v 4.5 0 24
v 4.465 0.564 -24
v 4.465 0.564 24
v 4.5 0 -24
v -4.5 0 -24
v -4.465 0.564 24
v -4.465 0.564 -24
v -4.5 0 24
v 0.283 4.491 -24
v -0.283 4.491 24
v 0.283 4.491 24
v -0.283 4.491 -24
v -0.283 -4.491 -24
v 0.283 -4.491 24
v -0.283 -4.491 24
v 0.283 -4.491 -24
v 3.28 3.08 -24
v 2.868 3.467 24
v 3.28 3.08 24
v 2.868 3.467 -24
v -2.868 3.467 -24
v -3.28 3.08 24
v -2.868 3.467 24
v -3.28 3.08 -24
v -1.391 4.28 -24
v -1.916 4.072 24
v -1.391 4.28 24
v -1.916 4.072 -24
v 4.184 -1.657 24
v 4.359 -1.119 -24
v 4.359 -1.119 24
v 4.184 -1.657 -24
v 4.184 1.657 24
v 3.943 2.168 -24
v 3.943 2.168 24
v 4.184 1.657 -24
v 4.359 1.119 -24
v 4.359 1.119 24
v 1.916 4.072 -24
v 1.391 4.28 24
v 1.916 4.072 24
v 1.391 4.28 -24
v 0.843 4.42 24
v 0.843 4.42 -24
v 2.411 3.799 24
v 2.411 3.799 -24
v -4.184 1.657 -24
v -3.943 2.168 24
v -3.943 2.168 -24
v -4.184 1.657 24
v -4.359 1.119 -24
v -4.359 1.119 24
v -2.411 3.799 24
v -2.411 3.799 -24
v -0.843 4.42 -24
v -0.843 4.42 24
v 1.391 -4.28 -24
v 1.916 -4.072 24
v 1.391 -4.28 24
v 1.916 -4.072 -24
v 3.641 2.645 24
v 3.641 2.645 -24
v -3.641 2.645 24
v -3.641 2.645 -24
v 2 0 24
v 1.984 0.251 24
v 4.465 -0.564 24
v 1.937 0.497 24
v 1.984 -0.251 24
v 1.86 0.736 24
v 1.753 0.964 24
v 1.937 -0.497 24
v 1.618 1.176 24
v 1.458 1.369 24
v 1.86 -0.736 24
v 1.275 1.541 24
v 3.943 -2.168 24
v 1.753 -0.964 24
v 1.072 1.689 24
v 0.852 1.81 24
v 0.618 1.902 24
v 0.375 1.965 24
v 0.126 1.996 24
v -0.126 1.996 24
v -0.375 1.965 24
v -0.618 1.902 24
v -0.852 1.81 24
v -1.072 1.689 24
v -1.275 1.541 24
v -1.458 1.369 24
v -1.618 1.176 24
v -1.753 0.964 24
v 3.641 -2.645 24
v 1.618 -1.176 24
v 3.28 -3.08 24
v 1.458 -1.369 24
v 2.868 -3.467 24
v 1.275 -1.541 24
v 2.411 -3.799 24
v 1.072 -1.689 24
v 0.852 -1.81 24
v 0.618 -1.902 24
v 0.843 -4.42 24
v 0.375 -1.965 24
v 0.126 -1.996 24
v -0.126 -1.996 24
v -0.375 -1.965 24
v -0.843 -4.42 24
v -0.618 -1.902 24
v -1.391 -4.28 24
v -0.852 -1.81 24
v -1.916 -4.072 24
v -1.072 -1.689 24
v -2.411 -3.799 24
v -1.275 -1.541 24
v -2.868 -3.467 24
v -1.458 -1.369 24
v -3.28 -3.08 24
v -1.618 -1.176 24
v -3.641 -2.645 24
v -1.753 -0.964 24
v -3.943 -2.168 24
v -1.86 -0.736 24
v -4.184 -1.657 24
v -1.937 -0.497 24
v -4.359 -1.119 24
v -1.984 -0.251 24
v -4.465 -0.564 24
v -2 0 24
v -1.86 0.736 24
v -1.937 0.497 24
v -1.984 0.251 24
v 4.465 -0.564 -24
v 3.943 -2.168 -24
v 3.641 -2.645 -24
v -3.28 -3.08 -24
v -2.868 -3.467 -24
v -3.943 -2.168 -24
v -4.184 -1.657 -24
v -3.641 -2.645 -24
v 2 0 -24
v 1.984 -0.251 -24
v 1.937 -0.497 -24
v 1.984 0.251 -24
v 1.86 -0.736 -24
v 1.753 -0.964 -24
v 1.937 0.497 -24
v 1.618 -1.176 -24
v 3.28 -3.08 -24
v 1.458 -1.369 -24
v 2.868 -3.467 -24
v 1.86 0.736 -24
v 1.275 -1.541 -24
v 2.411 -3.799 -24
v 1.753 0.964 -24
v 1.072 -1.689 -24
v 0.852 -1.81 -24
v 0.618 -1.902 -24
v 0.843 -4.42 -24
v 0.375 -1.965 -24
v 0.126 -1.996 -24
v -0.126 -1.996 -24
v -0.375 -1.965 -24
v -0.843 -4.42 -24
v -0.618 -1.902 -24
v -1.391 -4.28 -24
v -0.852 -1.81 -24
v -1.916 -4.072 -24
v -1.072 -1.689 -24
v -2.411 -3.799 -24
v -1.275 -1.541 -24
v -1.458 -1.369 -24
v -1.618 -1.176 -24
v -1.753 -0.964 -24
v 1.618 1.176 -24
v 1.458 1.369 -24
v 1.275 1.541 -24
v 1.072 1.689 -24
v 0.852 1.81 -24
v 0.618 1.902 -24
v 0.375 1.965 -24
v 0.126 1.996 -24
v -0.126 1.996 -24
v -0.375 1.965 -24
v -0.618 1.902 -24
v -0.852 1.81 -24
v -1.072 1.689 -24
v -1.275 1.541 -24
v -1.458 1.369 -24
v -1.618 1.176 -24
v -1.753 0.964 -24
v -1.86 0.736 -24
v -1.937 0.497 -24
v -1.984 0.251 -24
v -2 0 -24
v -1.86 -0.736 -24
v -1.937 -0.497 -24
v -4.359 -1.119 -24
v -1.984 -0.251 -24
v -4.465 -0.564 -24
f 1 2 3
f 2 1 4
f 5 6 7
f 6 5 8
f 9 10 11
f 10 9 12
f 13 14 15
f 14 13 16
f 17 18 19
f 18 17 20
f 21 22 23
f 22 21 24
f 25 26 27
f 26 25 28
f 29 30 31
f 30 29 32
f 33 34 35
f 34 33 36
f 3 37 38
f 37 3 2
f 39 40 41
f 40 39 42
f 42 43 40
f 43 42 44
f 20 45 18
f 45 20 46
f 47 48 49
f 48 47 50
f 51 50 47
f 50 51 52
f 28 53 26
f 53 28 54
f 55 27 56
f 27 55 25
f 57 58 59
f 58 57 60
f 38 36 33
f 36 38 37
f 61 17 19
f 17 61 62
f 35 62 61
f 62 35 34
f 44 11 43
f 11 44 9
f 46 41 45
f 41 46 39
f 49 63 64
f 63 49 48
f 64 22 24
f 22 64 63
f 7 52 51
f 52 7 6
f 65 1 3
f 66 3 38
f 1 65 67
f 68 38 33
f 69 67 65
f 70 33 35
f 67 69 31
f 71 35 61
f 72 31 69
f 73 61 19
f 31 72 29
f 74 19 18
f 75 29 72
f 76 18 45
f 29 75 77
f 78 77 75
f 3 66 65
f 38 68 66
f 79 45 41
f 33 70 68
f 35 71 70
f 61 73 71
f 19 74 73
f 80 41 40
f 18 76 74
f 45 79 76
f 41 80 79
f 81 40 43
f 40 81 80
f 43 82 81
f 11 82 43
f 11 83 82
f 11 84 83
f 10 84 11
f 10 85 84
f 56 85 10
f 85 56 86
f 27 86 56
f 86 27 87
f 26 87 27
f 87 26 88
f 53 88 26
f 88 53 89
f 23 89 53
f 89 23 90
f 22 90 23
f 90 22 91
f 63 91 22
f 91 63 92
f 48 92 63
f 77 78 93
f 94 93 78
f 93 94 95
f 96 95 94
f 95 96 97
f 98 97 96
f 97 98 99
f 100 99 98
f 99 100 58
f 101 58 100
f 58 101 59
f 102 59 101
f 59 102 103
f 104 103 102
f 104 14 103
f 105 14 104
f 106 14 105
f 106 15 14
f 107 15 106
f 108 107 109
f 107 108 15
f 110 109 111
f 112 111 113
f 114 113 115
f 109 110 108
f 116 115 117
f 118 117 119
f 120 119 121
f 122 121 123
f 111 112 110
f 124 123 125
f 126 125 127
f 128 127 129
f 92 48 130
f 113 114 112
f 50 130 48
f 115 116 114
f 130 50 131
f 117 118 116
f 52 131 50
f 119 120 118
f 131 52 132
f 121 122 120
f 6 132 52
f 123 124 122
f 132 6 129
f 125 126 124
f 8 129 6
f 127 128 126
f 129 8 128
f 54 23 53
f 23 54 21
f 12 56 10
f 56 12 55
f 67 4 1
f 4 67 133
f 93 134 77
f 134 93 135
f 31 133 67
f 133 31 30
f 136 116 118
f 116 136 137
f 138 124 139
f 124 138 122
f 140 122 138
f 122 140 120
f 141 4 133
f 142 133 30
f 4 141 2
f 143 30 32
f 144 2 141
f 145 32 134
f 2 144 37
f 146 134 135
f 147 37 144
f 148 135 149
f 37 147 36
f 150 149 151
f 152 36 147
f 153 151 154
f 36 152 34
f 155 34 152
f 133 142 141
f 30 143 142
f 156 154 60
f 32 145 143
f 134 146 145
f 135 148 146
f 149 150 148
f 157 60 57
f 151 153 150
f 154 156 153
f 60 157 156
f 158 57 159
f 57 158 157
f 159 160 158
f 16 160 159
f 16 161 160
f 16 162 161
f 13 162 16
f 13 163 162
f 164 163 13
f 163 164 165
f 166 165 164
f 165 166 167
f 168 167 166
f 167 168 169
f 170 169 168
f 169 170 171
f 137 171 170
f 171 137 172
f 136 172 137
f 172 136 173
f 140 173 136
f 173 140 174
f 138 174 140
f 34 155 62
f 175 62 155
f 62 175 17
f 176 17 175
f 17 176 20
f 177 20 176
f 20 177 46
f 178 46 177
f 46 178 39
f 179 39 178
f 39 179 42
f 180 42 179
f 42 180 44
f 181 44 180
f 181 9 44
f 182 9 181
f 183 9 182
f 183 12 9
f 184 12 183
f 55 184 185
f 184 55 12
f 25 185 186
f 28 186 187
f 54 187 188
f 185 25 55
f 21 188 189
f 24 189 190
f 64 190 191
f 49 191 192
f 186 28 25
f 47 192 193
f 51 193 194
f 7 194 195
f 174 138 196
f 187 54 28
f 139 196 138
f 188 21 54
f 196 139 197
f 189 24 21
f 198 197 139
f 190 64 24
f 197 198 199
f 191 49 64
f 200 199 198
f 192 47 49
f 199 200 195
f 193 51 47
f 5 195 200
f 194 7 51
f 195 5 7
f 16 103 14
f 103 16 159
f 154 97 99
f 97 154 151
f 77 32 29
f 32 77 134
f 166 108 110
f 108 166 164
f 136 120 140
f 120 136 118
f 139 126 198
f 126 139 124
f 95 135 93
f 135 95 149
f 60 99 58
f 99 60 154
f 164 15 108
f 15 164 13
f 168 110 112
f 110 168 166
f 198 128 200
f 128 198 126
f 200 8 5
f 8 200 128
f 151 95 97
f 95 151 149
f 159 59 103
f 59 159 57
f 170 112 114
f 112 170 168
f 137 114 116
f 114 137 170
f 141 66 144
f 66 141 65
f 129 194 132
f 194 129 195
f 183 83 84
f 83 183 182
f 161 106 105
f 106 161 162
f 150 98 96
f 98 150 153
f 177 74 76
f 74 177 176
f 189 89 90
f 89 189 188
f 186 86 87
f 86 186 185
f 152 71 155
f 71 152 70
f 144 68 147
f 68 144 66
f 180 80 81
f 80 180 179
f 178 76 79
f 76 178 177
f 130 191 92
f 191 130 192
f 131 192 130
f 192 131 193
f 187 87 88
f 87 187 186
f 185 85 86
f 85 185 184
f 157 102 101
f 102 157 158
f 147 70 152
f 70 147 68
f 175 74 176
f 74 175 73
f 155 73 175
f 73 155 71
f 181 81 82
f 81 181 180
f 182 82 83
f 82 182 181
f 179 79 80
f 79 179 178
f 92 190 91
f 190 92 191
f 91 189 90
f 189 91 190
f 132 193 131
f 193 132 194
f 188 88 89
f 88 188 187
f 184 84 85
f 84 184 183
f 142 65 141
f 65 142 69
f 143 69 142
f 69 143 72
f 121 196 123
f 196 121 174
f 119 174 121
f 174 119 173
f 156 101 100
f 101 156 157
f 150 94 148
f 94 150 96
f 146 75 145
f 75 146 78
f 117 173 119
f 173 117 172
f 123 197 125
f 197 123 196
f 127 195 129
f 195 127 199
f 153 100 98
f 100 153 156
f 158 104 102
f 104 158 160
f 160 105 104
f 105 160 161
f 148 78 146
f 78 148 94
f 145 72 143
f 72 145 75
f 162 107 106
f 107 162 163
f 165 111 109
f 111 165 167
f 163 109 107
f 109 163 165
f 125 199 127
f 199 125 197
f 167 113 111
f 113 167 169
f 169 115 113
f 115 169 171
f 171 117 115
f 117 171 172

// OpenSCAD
$fn = 50;


difference() {
	union() {
		translate(v = [0, 0, -24.0000000000]) {
			cylinder(h = 48, r = 4.5000000000);
		}
	}
	union() {
		translate(v = [0, 0, -100.0000000000]) {
			cylinder(h = 200, r = 2);
		}
	}
}
